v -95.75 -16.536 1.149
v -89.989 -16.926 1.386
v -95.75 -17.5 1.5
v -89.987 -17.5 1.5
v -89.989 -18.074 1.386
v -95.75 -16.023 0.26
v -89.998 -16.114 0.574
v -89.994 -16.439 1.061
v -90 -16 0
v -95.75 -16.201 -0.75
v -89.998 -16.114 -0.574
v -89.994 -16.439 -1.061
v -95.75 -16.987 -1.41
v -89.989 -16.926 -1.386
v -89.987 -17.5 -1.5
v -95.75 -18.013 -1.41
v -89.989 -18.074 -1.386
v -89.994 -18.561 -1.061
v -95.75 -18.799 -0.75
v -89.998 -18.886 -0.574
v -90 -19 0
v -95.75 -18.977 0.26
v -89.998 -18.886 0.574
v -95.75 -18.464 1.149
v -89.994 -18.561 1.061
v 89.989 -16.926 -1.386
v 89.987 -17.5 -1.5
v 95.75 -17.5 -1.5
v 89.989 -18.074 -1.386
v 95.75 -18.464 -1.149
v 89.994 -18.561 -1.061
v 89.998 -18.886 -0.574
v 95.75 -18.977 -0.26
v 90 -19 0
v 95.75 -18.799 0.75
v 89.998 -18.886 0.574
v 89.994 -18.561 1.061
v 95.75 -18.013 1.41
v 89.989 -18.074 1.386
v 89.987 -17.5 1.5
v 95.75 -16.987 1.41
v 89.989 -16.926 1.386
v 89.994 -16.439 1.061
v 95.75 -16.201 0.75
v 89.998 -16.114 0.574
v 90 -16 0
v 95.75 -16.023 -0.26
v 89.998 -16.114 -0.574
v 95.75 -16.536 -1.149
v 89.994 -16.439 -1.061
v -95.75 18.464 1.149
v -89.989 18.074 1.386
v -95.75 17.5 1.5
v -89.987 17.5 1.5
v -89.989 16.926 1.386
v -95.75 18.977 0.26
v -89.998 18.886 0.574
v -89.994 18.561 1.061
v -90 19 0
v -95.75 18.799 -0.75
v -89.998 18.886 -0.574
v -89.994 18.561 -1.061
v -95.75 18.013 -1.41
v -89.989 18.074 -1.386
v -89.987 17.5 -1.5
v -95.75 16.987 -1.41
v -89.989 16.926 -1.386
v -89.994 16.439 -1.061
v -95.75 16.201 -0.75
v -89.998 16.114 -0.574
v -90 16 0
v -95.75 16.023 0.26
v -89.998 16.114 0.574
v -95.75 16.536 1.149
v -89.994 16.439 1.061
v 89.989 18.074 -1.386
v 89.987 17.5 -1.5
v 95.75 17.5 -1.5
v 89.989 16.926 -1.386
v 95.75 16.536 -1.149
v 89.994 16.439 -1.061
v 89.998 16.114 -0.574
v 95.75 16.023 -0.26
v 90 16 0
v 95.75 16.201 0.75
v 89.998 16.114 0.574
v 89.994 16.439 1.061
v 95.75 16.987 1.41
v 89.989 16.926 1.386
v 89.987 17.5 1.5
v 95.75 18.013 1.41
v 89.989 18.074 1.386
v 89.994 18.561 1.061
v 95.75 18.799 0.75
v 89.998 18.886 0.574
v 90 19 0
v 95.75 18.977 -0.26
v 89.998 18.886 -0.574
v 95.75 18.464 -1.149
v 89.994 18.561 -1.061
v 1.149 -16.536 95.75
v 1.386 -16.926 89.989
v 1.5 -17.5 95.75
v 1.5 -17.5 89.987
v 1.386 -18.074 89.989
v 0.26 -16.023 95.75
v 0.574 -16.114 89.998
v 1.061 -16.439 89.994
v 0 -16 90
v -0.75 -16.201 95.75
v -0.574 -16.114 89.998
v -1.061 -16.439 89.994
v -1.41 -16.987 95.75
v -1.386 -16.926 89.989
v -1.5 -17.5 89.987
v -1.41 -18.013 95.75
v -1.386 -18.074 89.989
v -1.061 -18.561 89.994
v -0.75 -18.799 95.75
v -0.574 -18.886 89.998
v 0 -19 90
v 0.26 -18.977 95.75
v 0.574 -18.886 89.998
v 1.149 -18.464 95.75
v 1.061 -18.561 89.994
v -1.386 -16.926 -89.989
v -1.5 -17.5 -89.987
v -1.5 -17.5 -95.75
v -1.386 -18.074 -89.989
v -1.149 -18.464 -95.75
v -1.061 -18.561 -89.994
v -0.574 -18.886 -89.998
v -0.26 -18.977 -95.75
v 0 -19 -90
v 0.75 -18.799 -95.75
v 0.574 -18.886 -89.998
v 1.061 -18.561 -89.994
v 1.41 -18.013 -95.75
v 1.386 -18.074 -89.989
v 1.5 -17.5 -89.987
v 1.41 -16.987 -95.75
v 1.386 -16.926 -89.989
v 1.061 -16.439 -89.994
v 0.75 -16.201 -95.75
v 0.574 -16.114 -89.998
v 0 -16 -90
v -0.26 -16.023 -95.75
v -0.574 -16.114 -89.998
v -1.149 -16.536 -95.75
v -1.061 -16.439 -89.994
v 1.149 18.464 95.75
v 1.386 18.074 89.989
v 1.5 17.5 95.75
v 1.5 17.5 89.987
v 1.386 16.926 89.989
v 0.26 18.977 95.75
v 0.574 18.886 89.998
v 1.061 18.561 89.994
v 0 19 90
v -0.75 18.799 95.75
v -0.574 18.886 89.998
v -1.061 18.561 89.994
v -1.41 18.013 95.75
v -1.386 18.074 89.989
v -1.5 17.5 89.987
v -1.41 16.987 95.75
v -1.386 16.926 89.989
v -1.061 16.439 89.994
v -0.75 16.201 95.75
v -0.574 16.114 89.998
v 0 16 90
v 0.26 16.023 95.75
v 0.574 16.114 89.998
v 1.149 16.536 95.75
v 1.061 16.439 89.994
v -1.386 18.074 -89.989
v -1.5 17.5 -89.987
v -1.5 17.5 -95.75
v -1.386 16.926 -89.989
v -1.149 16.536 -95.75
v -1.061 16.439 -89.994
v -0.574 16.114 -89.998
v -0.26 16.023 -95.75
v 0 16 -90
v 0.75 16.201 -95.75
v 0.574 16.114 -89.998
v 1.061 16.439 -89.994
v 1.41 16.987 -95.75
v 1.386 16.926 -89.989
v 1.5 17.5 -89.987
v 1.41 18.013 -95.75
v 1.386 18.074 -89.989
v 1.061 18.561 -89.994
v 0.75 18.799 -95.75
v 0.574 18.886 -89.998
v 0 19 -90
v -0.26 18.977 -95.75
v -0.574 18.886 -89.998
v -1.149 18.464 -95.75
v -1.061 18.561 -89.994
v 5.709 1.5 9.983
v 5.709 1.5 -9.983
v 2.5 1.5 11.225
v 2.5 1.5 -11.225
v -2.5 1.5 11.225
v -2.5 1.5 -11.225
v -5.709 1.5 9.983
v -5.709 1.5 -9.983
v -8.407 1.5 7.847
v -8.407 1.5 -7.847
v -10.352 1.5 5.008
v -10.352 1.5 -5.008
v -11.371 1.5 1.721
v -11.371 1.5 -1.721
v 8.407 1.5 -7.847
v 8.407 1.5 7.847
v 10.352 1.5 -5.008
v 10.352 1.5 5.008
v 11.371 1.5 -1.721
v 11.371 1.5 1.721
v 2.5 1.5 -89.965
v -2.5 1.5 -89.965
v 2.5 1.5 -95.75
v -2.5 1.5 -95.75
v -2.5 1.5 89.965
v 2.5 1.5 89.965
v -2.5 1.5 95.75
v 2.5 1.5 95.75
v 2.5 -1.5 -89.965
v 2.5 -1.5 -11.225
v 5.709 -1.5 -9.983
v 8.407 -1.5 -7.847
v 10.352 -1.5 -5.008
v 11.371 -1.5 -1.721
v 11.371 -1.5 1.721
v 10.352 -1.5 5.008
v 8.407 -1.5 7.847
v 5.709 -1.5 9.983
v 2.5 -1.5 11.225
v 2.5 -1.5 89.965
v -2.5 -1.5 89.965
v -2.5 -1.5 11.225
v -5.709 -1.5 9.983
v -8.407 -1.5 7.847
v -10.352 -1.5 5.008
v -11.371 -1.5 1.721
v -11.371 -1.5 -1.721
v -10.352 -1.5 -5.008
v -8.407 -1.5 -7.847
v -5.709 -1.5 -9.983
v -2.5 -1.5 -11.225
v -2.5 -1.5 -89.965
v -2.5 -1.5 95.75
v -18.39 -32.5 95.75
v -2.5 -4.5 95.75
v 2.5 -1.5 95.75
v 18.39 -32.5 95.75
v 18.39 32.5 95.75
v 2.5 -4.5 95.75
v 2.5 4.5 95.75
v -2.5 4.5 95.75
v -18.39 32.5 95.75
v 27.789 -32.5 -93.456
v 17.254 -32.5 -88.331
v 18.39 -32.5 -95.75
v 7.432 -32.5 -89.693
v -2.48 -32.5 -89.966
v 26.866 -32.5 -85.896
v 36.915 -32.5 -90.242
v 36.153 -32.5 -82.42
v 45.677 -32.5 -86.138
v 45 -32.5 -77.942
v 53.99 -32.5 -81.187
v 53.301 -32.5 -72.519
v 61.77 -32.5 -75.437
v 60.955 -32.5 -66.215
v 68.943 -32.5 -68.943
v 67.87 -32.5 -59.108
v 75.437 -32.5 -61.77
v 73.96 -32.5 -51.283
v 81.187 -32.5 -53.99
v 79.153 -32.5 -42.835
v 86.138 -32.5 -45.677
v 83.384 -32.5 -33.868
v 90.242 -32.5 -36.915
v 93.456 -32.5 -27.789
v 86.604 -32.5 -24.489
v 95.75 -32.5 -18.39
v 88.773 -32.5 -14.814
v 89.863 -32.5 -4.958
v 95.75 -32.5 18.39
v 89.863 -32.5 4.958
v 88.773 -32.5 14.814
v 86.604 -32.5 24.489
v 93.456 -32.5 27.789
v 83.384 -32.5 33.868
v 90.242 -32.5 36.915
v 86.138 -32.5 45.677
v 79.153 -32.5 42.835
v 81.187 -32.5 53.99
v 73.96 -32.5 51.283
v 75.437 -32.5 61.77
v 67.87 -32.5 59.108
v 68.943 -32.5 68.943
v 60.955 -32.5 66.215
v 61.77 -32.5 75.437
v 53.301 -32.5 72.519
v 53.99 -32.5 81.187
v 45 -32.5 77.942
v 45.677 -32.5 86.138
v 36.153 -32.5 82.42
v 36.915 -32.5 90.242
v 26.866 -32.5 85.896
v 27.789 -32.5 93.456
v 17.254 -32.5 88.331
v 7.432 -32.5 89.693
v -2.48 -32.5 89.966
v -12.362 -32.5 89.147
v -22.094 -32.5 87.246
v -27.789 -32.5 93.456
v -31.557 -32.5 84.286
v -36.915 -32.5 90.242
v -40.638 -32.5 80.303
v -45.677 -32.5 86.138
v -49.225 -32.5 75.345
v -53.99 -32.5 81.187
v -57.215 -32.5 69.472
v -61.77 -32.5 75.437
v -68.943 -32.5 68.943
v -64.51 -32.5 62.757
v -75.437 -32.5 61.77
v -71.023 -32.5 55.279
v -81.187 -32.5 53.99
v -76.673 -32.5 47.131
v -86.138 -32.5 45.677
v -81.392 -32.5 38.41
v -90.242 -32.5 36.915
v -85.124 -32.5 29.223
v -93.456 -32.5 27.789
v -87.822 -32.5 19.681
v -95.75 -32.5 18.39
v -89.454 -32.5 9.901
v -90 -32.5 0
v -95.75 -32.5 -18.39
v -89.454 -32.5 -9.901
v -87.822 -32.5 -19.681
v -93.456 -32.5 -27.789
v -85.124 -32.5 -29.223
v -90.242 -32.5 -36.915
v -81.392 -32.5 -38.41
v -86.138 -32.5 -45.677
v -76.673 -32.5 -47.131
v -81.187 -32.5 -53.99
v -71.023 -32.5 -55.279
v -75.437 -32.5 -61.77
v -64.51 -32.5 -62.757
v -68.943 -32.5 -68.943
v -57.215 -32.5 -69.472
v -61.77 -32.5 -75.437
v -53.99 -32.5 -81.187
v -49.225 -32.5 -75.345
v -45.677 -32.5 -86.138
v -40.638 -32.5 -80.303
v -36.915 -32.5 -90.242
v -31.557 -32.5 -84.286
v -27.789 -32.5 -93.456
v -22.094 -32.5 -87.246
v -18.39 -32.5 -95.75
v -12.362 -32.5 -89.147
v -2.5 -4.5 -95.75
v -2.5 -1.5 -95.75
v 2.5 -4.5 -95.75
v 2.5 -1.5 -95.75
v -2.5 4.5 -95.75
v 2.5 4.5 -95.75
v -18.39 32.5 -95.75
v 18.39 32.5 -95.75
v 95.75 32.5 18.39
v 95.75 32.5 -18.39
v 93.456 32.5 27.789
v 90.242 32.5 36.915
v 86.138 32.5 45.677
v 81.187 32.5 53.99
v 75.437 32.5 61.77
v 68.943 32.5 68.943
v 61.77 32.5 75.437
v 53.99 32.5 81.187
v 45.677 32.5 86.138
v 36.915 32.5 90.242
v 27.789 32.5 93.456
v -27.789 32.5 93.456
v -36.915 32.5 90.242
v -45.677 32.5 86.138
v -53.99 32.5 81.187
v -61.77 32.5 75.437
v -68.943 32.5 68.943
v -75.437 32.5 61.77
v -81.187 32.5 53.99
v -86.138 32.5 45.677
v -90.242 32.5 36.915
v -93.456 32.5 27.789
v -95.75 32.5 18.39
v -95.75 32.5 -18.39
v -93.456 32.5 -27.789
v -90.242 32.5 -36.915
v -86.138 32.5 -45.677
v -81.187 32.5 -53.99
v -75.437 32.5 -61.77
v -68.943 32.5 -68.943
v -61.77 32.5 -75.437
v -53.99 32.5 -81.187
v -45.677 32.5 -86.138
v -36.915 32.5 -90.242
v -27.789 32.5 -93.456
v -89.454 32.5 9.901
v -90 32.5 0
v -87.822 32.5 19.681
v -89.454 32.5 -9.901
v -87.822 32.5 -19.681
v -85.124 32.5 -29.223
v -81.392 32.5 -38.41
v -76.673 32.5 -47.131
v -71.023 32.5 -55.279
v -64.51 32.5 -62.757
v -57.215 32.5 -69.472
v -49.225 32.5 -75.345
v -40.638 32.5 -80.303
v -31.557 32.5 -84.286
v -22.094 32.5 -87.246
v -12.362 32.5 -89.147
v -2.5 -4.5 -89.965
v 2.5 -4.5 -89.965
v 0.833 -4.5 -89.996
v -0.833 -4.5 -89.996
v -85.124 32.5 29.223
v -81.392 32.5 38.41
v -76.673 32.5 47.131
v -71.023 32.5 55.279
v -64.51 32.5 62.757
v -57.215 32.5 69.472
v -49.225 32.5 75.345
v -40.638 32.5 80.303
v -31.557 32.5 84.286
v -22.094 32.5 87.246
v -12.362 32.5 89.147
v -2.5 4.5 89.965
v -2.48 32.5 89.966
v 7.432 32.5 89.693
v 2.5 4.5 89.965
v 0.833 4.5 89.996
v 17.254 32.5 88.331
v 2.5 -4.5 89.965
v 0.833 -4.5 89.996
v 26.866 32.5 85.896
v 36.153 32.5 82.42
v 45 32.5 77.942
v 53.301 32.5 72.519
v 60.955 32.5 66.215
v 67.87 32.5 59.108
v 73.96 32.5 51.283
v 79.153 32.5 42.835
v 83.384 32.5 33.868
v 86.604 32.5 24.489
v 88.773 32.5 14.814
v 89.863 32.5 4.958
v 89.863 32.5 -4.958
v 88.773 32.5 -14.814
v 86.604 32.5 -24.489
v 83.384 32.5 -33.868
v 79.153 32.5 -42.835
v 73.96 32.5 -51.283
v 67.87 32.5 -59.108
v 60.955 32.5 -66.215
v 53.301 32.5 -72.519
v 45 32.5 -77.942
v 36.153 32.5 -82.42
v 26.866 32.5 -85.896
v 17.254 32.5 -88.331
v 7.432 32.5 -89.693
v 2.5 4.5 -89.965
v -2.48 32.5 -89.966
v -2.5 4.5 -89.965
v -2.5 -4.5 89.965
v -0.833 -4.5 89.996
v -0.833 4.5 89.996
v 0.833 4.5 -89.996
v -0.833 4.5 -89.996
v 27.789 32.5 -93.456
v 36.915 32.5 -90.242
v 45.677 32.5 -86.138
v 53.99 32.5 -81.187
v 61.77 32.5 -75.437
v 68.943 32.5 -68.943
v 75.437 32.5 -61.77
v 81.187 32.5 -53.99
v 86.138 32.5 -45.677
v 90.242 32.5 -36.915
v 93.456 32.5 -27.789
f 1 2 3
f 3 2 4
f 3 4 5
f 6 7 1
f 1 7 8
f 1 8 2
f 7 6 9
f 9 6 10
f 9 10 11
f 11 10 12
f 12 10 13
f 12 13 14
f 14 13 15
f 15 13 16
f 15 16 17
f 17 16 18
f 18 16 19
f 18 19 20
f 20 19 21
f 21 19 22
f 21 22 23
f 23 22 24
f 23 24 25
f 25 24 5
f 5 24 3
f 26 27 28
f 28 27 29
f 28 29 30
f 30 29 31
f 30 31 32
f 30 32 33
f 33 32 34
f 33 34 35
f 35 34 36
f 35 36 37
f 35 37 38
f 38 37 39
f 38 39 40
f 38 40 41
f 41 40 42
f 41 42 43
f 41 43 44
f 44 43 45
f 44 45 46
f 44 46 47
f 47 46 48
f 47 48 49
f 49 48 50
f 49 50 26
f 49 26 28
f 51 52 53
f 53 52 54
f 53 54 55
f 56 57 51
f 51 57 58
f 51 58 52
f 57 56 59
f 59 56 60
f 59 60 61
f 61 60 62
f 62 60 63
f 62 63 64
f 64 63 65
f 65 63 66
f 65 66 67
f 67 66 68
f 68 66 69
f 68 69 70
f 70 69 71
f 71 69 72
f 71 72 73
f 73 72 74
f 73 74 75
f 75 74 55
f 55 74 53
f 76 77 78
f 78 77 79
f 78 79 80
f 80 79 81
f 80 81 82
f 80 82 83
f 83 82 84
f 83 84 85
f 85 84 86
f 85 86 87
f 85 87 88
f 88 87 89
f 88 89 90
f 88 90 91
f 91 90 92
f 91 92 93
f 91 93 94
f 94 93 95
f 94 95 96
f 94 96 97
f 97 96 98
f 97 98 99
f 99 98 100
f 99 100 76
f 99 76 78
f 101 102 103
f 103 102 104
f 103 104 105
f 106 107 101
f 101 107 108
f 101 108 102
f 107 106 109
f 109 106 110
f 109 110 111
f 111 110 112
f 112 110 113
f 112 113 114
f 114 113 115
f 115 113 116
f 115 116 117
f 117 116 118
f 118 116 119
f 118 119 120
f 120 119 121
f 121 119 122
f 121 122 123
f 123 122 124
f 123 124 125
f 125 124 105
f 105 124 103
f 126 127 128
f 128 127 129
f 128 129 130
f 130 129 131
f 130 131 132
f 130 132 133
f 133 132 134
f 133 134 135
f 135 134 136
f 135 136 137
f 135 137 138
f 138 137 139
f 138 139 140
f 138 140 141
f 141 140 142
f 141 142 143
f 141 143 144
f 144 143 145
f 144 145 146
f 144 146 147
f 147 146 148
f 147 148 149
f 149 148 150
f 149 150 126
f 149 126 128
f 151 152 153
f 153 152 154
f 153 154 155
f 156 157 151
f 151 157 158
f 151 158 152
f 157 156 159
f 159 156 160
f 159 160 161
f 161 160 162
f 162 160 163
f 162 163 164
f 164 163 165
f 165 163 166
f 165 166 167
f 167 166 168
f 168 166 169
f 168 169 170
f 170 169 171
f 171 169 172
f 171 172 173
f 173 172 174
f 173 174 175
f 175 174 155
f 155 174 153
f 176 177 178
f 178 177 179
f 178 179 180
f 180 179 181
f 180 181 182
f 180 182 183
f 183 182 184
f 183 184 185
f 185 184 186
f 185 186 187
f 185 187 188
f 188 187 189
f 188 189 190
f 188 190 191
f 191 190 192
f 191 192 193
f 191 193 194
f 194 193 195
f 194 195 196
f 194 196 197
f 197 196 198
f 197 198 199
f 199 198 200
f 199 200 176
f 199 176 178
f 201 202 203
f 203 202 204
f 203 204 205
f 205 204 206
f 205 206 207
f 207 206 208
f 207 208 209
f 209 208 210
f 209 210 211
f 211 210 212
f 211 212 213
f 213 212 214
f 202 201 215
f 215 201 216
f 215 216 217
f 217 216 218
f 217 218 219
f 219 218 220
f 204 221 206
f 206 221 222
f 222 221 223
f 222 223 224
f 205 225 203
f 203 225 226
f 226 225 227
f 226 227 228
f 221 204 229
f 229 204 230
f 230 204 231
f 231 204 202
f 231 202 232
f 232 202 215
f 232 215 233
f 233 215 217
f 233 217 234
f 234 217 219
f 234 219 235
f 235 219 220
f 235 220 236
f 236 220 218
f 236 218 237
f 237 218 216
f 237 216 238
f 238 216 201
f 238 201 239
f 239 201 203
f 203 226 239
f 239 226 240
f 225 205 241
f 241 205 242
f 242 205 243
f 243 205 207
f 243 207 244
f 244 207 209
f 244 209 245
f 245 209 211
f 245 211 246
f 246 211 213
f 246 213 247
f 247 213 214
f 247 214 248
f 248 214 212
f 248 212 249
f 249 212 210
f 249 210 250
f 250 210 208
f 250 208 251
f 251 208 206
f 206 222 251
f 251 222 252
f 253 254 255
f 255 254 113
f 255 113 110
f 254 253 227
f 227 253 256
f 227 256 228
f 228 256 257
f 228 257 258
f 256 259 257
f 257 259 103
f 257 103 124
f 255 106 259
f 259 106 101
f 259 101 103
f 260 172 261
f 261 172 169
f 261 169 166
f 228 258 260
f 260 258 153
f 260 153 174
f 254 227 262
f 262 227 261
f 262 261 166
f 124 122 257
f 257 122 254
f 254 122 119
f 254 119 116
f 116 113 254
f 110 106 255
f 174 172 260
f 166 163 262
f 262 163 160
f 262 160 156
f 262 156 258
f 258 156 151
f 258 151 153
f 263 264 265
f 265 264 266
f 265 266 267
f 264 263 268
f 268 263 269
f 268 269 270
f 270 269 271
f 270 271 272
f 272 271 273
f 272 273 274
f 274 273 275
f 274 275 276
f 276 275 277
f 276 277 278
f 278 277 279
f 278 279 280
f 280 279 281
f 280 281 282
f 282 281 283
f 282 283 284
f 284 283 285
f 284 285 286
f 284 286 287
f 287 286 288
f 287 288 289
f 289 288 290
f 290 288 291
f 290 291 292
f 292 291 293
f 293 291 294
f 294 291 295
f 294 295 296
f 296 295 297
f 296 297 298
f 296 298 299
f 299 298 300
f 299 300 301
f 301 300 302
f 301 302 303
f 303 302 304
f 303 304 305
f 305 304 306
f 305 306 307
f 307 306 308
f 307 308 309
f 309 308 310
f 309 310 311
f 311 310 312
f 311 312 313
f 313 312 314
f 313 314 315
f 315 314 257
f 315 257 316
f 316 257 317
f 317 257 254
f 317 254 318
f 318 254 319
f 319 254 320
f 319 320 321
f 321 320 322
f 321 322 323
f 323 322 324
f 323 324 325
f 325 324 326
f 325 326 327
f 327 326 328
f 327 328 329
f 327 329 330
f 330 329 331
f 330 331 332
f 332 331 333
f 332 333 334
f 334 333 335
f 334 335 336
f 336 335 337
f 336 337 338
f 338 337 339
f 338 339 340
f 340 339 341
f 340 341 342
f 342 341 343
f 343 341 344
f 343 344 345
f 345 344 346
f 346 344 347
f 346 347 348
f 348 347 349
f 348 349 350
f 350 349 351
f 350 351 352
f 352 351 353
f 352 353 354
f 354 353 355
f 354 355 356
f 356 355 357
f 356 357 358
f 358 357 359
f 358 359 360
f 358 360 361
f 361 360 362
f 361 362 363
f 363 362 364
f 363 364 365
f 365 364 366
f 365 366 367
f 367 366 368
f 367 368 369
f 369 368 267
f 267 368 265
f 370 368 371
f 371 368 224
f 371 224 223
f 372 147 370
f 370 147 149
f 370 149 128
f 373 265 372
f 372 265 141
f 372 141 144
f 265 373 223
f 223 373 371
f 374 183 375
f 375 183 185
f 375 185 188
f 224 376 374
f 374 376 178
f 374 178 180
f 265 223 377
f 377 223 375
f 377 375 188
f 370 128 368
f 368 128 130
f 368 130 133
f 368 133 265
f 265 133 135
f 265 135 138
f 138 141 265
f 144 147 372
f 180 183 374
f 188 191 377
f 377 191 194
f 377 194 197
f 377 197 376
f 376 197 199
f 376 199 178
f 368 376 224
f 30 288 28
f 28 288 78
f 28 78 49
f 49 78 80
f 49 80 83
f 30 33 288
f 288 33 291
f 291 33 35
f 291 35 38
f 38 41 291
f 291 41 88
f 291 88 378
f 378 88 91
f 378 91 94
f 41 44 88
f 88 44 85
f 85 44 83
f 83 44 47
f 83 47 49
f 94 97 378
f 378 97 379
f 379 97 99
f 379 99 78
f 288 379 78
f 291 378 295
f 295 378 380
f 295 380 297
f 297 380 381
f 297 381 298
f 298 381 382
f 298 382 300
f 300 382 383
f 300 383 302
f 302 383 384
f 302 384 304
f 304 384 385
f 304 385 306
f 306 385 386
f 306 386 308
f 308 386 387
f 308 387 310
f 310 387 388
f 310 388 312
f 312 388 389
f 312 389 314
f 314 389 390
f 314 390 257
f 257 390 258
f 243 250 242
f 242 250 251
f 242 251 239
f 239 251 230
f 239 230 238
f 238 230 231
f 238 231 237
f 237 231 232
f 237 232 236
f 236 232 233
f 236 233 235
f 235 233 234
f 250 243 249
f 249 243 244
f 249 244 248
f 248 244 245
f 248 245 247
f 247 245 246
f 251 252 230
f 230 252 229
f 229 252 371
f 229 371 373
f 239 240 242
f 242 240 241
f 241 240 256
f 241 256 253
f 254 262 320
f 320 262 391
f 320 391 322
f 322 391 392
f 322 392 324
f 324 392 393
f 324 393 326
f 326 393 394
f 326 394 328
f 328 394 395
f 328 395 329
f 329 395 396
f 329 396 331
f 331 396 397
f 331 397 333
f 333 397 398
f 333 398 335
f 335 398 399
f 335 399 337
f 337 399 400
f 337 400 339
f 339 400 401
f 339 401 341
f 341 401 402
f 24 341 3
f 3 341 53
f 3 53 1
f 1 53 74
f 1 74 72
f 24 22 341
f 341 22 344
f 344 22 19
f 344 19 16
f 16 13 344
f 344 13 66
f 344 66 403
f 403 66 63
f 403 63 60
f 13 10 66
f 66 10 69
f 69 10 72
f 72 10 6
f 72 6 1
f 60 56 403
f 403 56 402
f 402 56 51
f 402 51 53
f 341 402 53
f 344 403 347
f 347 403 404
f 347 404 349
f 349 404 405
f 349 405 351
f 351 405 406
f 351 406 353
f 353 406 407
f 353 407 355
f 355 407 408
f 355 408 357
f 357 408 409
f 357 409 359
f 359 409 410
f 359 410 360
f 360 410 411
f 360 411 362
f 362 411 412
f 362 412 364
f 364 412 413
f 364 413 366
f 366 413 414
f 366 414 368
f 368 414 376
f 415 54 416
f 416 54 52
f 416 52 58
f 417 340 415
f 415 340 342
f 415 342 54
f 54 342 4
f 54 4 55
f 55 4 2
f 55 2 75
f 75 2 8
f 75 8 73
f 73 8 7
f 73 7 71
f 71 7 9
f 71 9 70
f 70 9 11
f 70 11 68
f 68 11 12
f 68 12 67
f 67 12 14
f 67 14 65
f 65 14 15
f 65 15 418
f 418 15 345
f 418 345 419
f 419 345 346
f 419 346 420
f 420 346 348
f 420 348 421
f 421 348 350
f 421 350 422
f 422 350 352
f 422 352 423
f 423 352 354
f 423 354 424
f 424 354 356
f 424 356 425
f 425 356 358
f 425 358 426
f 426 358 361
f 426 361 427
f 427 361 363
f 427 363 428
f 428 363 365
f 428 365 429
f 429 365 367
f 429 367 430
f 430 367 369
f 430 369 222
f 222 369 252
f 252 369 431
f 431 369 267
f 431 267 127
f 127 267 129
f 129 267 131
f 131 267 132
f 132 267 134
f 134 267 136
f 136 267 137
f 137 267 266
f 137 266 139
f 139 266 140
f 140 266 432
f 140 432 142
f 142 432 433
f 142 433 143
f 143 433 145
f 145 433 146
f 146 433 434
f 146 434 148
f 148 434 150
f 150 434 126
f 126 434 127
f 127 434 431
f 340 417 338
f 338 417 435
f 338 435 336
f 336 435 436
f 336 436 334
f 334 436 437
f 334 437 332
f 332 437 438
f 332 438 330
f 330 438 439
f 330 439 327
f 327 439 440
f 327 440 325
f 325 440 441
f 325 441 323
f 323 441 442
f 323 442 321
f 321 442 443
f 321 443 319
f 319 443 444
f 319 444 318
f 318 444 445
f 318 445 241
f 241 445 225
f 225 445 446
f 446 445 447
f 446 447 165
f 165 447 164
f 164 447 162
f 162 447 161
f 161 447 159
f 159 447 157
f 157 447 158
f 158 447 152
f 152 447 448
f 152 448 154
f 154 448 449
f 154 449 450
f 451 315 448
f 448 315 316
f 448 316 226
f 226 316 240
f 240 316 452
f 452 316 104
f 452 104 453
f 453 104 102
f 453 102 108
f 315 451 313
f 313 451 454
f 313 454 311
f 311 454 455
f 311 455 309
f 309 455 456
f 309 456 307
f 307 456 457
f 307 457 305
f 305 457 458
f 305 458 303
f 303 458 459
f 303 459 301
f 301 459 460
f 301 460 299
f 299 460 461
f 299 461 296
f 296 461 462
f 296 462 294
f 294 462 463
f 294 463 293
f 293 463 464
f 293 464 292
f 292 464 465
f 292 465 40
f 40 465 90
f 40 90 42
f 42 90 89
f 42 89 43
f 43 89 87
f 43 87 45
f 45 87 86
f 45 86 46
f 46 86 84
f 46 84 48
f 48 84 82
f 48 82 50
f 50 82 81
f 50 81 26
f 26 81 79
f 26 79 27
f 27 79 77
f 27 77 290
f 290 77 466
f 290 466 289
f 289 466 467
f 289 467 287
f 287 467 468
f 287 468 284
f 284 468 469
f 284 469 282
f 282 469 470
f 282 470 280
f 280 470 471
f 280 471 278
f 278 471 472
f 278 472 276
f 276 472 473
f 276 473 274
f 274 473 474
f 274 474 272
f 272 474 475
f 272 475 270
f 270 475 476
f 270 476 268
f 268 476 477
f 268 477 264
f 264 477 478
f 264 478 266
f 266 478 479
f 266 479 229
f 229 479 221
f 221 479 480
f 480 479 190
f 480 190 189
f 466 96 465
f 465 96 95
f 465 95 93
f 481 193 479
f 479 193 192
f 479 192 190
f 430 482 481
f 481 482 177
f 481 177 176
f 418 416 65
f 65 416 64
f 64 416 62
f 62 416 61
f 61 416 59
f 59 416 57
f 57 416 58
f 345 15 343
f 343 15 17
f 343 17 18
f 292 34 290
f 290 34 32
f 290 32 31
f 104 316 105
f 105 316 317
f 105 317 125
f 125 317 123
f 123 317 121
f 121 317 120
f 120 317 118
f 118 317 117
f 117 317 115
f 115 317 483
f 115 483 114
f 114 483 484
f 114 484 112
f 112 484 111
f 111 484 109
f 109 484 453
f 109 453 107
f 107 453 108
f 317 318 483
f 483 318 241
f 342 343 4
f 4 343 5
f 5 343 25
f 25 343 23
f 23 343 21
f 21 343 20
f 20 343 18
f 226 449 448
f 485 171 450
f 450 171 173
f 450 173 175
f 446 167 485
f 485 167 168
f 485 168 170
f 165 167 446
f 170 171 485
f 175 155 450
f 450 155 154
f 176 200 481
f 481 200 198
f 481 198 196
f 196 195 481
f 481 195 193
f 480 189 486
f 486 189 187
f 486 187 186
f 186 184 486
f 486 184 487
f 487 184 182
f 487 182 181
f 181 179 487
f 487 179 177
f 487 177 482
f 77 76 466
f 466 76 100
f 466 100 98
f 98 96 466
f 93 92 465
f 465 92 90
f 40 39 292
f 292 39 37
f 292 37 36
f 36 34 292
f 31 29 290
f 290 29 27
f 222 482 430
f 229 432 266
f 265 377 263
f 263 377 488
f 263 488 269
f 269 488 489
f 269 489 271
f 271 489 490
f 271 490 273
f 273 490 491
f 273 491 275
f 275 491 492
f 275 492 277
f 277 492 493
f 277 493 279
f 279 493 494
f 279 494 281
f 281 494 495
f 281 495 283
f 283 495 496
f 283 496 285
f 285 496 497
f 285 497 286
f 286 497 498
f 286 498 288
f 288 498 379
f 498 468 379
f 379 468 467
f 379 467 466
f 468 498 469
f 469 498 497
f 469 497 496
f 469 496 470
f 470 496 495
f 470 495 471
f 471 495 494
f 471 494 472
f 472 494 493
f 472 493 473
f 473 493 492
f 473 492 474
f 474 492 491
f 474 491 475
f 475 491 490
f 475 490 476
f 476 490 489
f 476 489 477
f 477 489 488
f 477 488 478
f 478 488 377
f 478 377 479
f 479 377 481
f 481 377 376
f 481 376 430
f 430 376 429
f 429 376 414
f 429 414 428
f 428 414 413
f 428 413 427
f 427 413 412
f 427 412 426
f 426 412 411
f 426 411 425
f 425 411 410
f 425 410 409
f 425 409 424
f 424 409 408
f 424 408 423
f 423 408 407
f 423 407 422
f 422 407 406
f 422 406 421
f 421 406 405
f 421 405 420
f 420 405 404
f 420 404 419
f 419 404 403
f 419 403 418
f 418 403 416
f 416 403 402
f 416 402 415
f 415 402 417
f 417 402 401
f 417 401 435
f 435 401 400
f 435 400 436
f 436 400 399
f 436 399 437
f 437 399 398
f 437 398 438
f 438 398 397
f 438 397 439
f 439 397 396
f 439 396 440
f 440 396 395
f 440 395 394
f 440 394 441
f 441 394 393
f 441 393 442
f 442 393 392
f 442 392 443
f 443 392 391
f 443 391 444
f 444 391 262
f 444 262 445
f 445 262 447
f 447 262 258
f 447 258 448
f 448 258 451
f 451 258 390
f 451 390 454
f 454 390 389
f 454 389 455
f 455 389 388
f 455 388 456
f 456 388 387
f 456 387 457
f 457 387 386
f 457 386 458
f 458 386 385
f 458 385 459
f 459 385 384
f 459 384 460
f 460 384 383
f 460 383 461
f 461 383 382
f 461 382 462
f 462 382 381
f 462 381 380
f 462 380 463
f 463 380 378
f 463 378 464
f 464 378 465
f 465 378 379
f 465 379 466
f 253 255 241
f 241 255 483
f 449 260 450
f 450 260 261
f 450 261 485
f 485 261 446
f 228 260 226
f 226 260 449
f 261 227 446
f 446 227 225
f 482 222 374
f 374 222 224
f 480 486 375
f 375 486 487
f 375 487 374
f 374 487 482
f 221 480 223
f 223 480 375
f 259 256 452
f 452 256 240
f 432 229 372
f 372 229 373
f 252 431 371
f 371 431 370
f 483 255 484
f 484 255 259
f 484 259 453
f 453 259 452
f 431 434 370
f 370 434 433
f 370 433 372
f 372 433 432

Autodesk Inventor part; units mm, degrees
ref_plane "YZ Plane" through (0, 0, 0) normal (1, 0, 0) x (0, 1, 0)
ref_plane "XZ Plane" through (0, 0, 0) normal (0, 1, 0) x (-1, 0, 0)
ref_plane "XY Plane" through (0, 0, 0) normal (0, 0, 1) x (1, 0, 0)
sketch "okrąg" plane through (0, 0, 0) normal (0, 1, 0) x (-1, 0, 0)
  circle A0 centre (0, 0) radius 90
  circle A1 centre (0, 0) radius 97.5
  line L0 (0, 0) -> (0, -95.75) construction
  line L1 (-18.3899, -95.75) -> (18.3899, -95.75)
  line L2 (0, 0) -> (95.75, 0) construction
  line L3 (95.75, -18.3899) -> (95.75, 18.3899)
  line L4 (0, 0) -> (0, 95.75) construction
  line L5 (18.3899, 95.75) -> (-18.3899, 95.75)
  line L6 (0, 0) -> (-95.75, 0) construction
  line L7 (-95.75, 18.3899) -> (-95.75, -18.3899)
  point P0 (-95.75, 18.3899)
  point P1 (-95.75, -18.3899)
  point P2 (-18.3899, -95.75)
  point P3 (95.75, -18.3899)
  point P4 (95.75, 18.3899)
  point P5 (18.3899, 95.75)
  point P6 (-18.3899, 95.75)
  dimension "d1" = 195
  dimension "d0" = 180
  dimension "d2" = 95.75
  dimension "d5" = 360
extrude "Wyciągnięcie proste1" add sketch "okrąg" along normal mid plane 65 contours L3 A1 L1 L7 L5
sketch "podpora" plane through (0, 0, 0) normal (0, 1, 0) x (-1, 0, 0)
  circle A0 centre (0, 0) radius 90
  line L0 (2.5, 0) -> (-2.5, 0) construction
  line L1 (-2.5, -90) -> (-2.5, 90)
  line L2 (2.5, -90) -> (2.5, 90)
  circle A1 centre (0, 0) radius 11.5
  point P0 (-2.5, -11.225)
  point P1 (-2.5, -89.9653)
  point P2 (2.5, -89.9653)
  point P3 (2.5, -11.225)
  point P4 (2.5, 11.225)
  point P5 (2.5, 89.9653)
  point P6 (-2.5, 89.9653)
  point P7 (-2.5, 11.225)
  dimension "d12" = 180
  dimension "d13" = 5
  dimension "d14" = 180
  dimension "d15" = 180
  dimension "d16" = 23
extrude "Wyciągnięcie proste2" add sketch "podpora" along normal mid plane 3 contours L2 A1 L1 A0 | A0 L1 A1 L2 | A1 L2 | L2 A1 L1 | L1 A1
sketch "Szkic5" plane through (-18.3899, 32.5, 95.75) normal (0, 0, 1) x (1, 0, 0)
  line L0 (0, 0) -> (18.3899, 0) construction
  line L1 (18.3899, 0) -> (18.3899, -15) construction
  line L2 (18.3899, -15) -> (18.3899, -50) construction
  circle A0 centre (18.3899, -15) radius 1.5
  circle A1 centre (18.3899, -50) radius 1.5
  point P0 (18.3899, -32.5)
  dimension "d28" = 18.3899
  dimension "d32" = 32.5
  dimension "d33" = 32.5
  dimension "d34" = 15
  dimension "d35" = 35
  dimension "d36" = 3
  dimension "d37" = 3
extrude "Wyciągnięcie proste4" cut sketch "Szkic5" against normal through all
sketch "Szkic6" plane through (-95.75, -32.5, 18.3899) normal (-1, 0, 0) x (0, 0, 1)
  line L0 (-18.3899, 32.5) -> (-18.3899, 50) construction
  line L1 (-18.3899, 32.5) -> (-18.3899, 15) construction
  circle A0 centre (-18.3899, 15) radius 1.5
  circle A1 centre (-18.3899, 50) radius 1.5
  dimension "d40" = 17.5
  dimension "d41" = 17.5
  dimension "d42" = 3
  dimension "d43" = 3
extrude "Wyciągnięcie proste5" cut sketch "Szkic6" against normal through all
sketch "Szkic7" plane through (18.3899, 32.5, -95.75) normal (0, 0, -1) x (-1, 0, 0)
  line L0 (18.3899, -31) -> (18.3899, -34) construction
  line L1 (15.8899, -31) -> (20.8899, -31)
  line L2 (20.8899, -31) -> (20.8899, -28)
  line L3 (20.8899, -28) -> (15.8899, -28)
  line L4 (15.8899, -28) -> (15.8899, -31)
  line L5 (15.8899, -34) -> (20.8899, -34)
  line L6 (20.8899, -34) -> (20.8899, -37)
  line L7 (20.8899, -37) -> (15.8899, -37)
  line L8 (15.8899, -37) -> (15.8899, -34)
  point P0 (18.3899, -32.5)
  dimension "d46" = 3
  dimension "d47" = 5
  dimension "d48" = 3
  dimension "d49" = 3
  dimension "d50" = 5
extrude "Wyciągnięcie proste6" cut sketch "Szkic7" against normal through all
equation "\"d12\" = d0"
equation "\"d14\" = d0"
equation "\"d15\" = d0"
properties part number "001-001"
